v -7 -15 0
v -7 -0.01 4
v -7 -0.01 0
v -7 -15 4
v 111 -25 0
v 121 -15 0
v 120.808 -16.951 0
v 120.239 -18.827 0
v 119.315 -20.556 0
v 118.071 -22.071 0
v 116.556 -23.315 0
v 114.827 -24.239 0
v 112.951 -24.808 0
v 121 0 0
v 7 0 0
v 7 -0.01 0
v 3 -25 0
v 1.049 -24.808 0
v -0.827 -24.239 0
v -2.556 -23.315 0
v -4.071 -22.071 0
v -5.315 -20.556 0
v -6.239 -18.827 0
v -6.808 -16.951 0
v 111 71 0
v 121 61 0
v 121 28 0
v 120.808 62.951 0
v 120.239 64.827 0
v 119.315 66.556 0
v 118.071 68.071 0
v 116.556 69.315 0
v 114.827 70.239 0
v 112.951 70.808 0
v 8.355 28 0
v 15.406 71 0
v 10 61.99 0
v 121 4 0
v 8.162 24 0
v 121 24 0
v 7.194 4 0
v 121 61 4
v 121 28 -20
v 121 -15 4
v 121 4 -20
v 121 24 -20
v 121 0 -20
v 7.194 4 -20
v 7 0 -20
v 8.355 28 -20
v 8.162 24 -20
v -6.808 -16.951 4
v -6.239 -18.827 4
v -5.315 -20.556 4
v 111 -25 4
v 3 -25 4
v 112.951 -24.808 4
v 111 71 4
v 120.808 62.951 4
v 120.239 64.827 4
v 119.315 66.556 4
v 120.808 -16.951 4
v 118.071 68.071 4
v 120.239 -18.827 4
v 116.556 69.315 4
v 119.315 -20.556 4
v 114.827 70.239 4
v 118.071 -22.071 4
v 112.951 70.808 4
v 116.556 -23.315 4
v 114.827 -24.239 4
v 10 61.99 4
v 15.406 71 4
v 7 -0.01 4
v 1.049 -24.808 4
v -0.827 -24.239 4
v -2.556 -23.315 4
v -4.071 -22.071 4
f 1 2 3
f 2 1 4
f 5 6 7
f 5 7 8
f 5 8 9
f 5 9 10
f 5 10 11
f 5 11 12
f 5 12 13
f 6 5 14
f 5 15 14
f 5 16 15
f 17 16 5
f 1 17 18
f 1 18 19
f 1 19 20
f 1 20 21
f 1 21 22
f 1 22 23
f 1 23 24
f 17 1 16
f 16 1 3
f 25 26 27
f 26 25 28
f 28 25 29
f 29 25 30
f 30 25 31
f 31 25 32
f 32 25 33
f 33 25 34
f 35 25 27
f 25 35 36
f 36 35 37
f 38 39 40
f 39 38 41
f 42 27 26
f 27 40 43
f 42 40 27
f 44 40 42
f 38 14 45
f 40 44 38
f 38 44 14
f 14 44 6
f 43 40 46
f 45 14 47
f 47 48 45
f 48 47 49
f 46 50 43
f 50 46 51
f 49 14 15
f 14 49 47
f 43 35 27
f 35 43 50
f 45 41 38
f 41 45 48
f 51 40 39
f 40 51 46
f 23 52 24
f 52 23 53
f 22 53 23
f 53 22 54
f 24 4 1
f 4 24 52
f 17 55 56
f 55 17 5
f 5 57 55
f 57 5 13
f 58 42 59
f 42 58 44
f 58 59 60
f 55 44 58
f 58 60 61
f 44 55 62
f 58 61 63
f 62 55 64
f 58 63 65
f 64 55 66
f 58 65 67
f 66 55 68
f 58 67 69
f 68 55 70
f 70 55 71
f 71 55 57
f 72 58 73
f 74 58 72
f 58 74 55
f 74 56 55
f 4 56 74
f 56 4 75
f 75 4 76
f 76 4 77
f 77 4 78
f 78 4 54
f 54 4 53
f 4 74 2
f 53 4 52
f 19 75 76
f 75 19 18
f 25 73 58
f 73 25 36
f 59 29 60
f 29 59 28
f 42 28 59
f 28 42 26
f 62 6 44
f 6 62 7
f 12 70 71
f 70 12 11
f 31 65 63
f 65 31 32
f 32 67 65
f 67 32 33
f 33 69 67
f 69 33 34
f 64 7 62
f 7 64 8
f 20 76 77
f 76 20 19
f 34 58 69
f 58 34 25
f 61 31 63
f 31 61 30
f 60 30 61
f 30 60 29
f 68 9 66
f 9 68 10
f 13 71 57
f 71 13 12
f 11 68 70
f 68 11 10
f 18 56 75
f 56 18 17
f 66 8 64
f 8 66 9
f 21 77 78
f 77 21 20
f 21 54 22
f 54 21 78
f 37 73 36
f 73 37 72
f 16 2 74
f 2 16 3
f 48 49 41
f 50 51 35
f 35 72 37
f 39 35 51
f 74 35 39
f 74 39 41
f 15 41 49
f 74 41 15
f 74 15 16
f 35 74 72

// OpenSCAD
union() // SharpSCAD generated scene: shelf
{
  difference()
  {
    union()
    {
      translate( v= [ -7, -25, 0 ] )
        linear_extrude( height= 4 )
          hull()
          {
            translate( v= [ 10, 10, 0 ] )
              circle( r= 10, $fn= 32 );
            translate( v= [ 118, 10, 0 ] )
              circle( r= 10, $fn= 32 );
            translate( v= [ 10, 86, 0 ] )
              circle( r= 10, $fn= 32 );
            translate( v= [ 118, 86, 0 ] )
              circle( r= 10, $fn= 32 );
          }
      translate( v= [ -7, 0, -20 ] )
        difference()
        {
          cube( size= [ 128, 28, 20 ] );
          translate( v= [ -1, 4, -1 ] )
            cube( size= [ 130, 20, 22 ] );
        }
    }
    translate( v= [ 0, -0.01, 0 ] )
      translate( v= [ 0, 0, -25 ] )
        linear_extrude( height= 30 )
          polygon( points= [ [0, 0], [7, 0], [10, 62], [16, 72], [-16, 72], [-10, 62], [-7, 0] ] );
  }
}
